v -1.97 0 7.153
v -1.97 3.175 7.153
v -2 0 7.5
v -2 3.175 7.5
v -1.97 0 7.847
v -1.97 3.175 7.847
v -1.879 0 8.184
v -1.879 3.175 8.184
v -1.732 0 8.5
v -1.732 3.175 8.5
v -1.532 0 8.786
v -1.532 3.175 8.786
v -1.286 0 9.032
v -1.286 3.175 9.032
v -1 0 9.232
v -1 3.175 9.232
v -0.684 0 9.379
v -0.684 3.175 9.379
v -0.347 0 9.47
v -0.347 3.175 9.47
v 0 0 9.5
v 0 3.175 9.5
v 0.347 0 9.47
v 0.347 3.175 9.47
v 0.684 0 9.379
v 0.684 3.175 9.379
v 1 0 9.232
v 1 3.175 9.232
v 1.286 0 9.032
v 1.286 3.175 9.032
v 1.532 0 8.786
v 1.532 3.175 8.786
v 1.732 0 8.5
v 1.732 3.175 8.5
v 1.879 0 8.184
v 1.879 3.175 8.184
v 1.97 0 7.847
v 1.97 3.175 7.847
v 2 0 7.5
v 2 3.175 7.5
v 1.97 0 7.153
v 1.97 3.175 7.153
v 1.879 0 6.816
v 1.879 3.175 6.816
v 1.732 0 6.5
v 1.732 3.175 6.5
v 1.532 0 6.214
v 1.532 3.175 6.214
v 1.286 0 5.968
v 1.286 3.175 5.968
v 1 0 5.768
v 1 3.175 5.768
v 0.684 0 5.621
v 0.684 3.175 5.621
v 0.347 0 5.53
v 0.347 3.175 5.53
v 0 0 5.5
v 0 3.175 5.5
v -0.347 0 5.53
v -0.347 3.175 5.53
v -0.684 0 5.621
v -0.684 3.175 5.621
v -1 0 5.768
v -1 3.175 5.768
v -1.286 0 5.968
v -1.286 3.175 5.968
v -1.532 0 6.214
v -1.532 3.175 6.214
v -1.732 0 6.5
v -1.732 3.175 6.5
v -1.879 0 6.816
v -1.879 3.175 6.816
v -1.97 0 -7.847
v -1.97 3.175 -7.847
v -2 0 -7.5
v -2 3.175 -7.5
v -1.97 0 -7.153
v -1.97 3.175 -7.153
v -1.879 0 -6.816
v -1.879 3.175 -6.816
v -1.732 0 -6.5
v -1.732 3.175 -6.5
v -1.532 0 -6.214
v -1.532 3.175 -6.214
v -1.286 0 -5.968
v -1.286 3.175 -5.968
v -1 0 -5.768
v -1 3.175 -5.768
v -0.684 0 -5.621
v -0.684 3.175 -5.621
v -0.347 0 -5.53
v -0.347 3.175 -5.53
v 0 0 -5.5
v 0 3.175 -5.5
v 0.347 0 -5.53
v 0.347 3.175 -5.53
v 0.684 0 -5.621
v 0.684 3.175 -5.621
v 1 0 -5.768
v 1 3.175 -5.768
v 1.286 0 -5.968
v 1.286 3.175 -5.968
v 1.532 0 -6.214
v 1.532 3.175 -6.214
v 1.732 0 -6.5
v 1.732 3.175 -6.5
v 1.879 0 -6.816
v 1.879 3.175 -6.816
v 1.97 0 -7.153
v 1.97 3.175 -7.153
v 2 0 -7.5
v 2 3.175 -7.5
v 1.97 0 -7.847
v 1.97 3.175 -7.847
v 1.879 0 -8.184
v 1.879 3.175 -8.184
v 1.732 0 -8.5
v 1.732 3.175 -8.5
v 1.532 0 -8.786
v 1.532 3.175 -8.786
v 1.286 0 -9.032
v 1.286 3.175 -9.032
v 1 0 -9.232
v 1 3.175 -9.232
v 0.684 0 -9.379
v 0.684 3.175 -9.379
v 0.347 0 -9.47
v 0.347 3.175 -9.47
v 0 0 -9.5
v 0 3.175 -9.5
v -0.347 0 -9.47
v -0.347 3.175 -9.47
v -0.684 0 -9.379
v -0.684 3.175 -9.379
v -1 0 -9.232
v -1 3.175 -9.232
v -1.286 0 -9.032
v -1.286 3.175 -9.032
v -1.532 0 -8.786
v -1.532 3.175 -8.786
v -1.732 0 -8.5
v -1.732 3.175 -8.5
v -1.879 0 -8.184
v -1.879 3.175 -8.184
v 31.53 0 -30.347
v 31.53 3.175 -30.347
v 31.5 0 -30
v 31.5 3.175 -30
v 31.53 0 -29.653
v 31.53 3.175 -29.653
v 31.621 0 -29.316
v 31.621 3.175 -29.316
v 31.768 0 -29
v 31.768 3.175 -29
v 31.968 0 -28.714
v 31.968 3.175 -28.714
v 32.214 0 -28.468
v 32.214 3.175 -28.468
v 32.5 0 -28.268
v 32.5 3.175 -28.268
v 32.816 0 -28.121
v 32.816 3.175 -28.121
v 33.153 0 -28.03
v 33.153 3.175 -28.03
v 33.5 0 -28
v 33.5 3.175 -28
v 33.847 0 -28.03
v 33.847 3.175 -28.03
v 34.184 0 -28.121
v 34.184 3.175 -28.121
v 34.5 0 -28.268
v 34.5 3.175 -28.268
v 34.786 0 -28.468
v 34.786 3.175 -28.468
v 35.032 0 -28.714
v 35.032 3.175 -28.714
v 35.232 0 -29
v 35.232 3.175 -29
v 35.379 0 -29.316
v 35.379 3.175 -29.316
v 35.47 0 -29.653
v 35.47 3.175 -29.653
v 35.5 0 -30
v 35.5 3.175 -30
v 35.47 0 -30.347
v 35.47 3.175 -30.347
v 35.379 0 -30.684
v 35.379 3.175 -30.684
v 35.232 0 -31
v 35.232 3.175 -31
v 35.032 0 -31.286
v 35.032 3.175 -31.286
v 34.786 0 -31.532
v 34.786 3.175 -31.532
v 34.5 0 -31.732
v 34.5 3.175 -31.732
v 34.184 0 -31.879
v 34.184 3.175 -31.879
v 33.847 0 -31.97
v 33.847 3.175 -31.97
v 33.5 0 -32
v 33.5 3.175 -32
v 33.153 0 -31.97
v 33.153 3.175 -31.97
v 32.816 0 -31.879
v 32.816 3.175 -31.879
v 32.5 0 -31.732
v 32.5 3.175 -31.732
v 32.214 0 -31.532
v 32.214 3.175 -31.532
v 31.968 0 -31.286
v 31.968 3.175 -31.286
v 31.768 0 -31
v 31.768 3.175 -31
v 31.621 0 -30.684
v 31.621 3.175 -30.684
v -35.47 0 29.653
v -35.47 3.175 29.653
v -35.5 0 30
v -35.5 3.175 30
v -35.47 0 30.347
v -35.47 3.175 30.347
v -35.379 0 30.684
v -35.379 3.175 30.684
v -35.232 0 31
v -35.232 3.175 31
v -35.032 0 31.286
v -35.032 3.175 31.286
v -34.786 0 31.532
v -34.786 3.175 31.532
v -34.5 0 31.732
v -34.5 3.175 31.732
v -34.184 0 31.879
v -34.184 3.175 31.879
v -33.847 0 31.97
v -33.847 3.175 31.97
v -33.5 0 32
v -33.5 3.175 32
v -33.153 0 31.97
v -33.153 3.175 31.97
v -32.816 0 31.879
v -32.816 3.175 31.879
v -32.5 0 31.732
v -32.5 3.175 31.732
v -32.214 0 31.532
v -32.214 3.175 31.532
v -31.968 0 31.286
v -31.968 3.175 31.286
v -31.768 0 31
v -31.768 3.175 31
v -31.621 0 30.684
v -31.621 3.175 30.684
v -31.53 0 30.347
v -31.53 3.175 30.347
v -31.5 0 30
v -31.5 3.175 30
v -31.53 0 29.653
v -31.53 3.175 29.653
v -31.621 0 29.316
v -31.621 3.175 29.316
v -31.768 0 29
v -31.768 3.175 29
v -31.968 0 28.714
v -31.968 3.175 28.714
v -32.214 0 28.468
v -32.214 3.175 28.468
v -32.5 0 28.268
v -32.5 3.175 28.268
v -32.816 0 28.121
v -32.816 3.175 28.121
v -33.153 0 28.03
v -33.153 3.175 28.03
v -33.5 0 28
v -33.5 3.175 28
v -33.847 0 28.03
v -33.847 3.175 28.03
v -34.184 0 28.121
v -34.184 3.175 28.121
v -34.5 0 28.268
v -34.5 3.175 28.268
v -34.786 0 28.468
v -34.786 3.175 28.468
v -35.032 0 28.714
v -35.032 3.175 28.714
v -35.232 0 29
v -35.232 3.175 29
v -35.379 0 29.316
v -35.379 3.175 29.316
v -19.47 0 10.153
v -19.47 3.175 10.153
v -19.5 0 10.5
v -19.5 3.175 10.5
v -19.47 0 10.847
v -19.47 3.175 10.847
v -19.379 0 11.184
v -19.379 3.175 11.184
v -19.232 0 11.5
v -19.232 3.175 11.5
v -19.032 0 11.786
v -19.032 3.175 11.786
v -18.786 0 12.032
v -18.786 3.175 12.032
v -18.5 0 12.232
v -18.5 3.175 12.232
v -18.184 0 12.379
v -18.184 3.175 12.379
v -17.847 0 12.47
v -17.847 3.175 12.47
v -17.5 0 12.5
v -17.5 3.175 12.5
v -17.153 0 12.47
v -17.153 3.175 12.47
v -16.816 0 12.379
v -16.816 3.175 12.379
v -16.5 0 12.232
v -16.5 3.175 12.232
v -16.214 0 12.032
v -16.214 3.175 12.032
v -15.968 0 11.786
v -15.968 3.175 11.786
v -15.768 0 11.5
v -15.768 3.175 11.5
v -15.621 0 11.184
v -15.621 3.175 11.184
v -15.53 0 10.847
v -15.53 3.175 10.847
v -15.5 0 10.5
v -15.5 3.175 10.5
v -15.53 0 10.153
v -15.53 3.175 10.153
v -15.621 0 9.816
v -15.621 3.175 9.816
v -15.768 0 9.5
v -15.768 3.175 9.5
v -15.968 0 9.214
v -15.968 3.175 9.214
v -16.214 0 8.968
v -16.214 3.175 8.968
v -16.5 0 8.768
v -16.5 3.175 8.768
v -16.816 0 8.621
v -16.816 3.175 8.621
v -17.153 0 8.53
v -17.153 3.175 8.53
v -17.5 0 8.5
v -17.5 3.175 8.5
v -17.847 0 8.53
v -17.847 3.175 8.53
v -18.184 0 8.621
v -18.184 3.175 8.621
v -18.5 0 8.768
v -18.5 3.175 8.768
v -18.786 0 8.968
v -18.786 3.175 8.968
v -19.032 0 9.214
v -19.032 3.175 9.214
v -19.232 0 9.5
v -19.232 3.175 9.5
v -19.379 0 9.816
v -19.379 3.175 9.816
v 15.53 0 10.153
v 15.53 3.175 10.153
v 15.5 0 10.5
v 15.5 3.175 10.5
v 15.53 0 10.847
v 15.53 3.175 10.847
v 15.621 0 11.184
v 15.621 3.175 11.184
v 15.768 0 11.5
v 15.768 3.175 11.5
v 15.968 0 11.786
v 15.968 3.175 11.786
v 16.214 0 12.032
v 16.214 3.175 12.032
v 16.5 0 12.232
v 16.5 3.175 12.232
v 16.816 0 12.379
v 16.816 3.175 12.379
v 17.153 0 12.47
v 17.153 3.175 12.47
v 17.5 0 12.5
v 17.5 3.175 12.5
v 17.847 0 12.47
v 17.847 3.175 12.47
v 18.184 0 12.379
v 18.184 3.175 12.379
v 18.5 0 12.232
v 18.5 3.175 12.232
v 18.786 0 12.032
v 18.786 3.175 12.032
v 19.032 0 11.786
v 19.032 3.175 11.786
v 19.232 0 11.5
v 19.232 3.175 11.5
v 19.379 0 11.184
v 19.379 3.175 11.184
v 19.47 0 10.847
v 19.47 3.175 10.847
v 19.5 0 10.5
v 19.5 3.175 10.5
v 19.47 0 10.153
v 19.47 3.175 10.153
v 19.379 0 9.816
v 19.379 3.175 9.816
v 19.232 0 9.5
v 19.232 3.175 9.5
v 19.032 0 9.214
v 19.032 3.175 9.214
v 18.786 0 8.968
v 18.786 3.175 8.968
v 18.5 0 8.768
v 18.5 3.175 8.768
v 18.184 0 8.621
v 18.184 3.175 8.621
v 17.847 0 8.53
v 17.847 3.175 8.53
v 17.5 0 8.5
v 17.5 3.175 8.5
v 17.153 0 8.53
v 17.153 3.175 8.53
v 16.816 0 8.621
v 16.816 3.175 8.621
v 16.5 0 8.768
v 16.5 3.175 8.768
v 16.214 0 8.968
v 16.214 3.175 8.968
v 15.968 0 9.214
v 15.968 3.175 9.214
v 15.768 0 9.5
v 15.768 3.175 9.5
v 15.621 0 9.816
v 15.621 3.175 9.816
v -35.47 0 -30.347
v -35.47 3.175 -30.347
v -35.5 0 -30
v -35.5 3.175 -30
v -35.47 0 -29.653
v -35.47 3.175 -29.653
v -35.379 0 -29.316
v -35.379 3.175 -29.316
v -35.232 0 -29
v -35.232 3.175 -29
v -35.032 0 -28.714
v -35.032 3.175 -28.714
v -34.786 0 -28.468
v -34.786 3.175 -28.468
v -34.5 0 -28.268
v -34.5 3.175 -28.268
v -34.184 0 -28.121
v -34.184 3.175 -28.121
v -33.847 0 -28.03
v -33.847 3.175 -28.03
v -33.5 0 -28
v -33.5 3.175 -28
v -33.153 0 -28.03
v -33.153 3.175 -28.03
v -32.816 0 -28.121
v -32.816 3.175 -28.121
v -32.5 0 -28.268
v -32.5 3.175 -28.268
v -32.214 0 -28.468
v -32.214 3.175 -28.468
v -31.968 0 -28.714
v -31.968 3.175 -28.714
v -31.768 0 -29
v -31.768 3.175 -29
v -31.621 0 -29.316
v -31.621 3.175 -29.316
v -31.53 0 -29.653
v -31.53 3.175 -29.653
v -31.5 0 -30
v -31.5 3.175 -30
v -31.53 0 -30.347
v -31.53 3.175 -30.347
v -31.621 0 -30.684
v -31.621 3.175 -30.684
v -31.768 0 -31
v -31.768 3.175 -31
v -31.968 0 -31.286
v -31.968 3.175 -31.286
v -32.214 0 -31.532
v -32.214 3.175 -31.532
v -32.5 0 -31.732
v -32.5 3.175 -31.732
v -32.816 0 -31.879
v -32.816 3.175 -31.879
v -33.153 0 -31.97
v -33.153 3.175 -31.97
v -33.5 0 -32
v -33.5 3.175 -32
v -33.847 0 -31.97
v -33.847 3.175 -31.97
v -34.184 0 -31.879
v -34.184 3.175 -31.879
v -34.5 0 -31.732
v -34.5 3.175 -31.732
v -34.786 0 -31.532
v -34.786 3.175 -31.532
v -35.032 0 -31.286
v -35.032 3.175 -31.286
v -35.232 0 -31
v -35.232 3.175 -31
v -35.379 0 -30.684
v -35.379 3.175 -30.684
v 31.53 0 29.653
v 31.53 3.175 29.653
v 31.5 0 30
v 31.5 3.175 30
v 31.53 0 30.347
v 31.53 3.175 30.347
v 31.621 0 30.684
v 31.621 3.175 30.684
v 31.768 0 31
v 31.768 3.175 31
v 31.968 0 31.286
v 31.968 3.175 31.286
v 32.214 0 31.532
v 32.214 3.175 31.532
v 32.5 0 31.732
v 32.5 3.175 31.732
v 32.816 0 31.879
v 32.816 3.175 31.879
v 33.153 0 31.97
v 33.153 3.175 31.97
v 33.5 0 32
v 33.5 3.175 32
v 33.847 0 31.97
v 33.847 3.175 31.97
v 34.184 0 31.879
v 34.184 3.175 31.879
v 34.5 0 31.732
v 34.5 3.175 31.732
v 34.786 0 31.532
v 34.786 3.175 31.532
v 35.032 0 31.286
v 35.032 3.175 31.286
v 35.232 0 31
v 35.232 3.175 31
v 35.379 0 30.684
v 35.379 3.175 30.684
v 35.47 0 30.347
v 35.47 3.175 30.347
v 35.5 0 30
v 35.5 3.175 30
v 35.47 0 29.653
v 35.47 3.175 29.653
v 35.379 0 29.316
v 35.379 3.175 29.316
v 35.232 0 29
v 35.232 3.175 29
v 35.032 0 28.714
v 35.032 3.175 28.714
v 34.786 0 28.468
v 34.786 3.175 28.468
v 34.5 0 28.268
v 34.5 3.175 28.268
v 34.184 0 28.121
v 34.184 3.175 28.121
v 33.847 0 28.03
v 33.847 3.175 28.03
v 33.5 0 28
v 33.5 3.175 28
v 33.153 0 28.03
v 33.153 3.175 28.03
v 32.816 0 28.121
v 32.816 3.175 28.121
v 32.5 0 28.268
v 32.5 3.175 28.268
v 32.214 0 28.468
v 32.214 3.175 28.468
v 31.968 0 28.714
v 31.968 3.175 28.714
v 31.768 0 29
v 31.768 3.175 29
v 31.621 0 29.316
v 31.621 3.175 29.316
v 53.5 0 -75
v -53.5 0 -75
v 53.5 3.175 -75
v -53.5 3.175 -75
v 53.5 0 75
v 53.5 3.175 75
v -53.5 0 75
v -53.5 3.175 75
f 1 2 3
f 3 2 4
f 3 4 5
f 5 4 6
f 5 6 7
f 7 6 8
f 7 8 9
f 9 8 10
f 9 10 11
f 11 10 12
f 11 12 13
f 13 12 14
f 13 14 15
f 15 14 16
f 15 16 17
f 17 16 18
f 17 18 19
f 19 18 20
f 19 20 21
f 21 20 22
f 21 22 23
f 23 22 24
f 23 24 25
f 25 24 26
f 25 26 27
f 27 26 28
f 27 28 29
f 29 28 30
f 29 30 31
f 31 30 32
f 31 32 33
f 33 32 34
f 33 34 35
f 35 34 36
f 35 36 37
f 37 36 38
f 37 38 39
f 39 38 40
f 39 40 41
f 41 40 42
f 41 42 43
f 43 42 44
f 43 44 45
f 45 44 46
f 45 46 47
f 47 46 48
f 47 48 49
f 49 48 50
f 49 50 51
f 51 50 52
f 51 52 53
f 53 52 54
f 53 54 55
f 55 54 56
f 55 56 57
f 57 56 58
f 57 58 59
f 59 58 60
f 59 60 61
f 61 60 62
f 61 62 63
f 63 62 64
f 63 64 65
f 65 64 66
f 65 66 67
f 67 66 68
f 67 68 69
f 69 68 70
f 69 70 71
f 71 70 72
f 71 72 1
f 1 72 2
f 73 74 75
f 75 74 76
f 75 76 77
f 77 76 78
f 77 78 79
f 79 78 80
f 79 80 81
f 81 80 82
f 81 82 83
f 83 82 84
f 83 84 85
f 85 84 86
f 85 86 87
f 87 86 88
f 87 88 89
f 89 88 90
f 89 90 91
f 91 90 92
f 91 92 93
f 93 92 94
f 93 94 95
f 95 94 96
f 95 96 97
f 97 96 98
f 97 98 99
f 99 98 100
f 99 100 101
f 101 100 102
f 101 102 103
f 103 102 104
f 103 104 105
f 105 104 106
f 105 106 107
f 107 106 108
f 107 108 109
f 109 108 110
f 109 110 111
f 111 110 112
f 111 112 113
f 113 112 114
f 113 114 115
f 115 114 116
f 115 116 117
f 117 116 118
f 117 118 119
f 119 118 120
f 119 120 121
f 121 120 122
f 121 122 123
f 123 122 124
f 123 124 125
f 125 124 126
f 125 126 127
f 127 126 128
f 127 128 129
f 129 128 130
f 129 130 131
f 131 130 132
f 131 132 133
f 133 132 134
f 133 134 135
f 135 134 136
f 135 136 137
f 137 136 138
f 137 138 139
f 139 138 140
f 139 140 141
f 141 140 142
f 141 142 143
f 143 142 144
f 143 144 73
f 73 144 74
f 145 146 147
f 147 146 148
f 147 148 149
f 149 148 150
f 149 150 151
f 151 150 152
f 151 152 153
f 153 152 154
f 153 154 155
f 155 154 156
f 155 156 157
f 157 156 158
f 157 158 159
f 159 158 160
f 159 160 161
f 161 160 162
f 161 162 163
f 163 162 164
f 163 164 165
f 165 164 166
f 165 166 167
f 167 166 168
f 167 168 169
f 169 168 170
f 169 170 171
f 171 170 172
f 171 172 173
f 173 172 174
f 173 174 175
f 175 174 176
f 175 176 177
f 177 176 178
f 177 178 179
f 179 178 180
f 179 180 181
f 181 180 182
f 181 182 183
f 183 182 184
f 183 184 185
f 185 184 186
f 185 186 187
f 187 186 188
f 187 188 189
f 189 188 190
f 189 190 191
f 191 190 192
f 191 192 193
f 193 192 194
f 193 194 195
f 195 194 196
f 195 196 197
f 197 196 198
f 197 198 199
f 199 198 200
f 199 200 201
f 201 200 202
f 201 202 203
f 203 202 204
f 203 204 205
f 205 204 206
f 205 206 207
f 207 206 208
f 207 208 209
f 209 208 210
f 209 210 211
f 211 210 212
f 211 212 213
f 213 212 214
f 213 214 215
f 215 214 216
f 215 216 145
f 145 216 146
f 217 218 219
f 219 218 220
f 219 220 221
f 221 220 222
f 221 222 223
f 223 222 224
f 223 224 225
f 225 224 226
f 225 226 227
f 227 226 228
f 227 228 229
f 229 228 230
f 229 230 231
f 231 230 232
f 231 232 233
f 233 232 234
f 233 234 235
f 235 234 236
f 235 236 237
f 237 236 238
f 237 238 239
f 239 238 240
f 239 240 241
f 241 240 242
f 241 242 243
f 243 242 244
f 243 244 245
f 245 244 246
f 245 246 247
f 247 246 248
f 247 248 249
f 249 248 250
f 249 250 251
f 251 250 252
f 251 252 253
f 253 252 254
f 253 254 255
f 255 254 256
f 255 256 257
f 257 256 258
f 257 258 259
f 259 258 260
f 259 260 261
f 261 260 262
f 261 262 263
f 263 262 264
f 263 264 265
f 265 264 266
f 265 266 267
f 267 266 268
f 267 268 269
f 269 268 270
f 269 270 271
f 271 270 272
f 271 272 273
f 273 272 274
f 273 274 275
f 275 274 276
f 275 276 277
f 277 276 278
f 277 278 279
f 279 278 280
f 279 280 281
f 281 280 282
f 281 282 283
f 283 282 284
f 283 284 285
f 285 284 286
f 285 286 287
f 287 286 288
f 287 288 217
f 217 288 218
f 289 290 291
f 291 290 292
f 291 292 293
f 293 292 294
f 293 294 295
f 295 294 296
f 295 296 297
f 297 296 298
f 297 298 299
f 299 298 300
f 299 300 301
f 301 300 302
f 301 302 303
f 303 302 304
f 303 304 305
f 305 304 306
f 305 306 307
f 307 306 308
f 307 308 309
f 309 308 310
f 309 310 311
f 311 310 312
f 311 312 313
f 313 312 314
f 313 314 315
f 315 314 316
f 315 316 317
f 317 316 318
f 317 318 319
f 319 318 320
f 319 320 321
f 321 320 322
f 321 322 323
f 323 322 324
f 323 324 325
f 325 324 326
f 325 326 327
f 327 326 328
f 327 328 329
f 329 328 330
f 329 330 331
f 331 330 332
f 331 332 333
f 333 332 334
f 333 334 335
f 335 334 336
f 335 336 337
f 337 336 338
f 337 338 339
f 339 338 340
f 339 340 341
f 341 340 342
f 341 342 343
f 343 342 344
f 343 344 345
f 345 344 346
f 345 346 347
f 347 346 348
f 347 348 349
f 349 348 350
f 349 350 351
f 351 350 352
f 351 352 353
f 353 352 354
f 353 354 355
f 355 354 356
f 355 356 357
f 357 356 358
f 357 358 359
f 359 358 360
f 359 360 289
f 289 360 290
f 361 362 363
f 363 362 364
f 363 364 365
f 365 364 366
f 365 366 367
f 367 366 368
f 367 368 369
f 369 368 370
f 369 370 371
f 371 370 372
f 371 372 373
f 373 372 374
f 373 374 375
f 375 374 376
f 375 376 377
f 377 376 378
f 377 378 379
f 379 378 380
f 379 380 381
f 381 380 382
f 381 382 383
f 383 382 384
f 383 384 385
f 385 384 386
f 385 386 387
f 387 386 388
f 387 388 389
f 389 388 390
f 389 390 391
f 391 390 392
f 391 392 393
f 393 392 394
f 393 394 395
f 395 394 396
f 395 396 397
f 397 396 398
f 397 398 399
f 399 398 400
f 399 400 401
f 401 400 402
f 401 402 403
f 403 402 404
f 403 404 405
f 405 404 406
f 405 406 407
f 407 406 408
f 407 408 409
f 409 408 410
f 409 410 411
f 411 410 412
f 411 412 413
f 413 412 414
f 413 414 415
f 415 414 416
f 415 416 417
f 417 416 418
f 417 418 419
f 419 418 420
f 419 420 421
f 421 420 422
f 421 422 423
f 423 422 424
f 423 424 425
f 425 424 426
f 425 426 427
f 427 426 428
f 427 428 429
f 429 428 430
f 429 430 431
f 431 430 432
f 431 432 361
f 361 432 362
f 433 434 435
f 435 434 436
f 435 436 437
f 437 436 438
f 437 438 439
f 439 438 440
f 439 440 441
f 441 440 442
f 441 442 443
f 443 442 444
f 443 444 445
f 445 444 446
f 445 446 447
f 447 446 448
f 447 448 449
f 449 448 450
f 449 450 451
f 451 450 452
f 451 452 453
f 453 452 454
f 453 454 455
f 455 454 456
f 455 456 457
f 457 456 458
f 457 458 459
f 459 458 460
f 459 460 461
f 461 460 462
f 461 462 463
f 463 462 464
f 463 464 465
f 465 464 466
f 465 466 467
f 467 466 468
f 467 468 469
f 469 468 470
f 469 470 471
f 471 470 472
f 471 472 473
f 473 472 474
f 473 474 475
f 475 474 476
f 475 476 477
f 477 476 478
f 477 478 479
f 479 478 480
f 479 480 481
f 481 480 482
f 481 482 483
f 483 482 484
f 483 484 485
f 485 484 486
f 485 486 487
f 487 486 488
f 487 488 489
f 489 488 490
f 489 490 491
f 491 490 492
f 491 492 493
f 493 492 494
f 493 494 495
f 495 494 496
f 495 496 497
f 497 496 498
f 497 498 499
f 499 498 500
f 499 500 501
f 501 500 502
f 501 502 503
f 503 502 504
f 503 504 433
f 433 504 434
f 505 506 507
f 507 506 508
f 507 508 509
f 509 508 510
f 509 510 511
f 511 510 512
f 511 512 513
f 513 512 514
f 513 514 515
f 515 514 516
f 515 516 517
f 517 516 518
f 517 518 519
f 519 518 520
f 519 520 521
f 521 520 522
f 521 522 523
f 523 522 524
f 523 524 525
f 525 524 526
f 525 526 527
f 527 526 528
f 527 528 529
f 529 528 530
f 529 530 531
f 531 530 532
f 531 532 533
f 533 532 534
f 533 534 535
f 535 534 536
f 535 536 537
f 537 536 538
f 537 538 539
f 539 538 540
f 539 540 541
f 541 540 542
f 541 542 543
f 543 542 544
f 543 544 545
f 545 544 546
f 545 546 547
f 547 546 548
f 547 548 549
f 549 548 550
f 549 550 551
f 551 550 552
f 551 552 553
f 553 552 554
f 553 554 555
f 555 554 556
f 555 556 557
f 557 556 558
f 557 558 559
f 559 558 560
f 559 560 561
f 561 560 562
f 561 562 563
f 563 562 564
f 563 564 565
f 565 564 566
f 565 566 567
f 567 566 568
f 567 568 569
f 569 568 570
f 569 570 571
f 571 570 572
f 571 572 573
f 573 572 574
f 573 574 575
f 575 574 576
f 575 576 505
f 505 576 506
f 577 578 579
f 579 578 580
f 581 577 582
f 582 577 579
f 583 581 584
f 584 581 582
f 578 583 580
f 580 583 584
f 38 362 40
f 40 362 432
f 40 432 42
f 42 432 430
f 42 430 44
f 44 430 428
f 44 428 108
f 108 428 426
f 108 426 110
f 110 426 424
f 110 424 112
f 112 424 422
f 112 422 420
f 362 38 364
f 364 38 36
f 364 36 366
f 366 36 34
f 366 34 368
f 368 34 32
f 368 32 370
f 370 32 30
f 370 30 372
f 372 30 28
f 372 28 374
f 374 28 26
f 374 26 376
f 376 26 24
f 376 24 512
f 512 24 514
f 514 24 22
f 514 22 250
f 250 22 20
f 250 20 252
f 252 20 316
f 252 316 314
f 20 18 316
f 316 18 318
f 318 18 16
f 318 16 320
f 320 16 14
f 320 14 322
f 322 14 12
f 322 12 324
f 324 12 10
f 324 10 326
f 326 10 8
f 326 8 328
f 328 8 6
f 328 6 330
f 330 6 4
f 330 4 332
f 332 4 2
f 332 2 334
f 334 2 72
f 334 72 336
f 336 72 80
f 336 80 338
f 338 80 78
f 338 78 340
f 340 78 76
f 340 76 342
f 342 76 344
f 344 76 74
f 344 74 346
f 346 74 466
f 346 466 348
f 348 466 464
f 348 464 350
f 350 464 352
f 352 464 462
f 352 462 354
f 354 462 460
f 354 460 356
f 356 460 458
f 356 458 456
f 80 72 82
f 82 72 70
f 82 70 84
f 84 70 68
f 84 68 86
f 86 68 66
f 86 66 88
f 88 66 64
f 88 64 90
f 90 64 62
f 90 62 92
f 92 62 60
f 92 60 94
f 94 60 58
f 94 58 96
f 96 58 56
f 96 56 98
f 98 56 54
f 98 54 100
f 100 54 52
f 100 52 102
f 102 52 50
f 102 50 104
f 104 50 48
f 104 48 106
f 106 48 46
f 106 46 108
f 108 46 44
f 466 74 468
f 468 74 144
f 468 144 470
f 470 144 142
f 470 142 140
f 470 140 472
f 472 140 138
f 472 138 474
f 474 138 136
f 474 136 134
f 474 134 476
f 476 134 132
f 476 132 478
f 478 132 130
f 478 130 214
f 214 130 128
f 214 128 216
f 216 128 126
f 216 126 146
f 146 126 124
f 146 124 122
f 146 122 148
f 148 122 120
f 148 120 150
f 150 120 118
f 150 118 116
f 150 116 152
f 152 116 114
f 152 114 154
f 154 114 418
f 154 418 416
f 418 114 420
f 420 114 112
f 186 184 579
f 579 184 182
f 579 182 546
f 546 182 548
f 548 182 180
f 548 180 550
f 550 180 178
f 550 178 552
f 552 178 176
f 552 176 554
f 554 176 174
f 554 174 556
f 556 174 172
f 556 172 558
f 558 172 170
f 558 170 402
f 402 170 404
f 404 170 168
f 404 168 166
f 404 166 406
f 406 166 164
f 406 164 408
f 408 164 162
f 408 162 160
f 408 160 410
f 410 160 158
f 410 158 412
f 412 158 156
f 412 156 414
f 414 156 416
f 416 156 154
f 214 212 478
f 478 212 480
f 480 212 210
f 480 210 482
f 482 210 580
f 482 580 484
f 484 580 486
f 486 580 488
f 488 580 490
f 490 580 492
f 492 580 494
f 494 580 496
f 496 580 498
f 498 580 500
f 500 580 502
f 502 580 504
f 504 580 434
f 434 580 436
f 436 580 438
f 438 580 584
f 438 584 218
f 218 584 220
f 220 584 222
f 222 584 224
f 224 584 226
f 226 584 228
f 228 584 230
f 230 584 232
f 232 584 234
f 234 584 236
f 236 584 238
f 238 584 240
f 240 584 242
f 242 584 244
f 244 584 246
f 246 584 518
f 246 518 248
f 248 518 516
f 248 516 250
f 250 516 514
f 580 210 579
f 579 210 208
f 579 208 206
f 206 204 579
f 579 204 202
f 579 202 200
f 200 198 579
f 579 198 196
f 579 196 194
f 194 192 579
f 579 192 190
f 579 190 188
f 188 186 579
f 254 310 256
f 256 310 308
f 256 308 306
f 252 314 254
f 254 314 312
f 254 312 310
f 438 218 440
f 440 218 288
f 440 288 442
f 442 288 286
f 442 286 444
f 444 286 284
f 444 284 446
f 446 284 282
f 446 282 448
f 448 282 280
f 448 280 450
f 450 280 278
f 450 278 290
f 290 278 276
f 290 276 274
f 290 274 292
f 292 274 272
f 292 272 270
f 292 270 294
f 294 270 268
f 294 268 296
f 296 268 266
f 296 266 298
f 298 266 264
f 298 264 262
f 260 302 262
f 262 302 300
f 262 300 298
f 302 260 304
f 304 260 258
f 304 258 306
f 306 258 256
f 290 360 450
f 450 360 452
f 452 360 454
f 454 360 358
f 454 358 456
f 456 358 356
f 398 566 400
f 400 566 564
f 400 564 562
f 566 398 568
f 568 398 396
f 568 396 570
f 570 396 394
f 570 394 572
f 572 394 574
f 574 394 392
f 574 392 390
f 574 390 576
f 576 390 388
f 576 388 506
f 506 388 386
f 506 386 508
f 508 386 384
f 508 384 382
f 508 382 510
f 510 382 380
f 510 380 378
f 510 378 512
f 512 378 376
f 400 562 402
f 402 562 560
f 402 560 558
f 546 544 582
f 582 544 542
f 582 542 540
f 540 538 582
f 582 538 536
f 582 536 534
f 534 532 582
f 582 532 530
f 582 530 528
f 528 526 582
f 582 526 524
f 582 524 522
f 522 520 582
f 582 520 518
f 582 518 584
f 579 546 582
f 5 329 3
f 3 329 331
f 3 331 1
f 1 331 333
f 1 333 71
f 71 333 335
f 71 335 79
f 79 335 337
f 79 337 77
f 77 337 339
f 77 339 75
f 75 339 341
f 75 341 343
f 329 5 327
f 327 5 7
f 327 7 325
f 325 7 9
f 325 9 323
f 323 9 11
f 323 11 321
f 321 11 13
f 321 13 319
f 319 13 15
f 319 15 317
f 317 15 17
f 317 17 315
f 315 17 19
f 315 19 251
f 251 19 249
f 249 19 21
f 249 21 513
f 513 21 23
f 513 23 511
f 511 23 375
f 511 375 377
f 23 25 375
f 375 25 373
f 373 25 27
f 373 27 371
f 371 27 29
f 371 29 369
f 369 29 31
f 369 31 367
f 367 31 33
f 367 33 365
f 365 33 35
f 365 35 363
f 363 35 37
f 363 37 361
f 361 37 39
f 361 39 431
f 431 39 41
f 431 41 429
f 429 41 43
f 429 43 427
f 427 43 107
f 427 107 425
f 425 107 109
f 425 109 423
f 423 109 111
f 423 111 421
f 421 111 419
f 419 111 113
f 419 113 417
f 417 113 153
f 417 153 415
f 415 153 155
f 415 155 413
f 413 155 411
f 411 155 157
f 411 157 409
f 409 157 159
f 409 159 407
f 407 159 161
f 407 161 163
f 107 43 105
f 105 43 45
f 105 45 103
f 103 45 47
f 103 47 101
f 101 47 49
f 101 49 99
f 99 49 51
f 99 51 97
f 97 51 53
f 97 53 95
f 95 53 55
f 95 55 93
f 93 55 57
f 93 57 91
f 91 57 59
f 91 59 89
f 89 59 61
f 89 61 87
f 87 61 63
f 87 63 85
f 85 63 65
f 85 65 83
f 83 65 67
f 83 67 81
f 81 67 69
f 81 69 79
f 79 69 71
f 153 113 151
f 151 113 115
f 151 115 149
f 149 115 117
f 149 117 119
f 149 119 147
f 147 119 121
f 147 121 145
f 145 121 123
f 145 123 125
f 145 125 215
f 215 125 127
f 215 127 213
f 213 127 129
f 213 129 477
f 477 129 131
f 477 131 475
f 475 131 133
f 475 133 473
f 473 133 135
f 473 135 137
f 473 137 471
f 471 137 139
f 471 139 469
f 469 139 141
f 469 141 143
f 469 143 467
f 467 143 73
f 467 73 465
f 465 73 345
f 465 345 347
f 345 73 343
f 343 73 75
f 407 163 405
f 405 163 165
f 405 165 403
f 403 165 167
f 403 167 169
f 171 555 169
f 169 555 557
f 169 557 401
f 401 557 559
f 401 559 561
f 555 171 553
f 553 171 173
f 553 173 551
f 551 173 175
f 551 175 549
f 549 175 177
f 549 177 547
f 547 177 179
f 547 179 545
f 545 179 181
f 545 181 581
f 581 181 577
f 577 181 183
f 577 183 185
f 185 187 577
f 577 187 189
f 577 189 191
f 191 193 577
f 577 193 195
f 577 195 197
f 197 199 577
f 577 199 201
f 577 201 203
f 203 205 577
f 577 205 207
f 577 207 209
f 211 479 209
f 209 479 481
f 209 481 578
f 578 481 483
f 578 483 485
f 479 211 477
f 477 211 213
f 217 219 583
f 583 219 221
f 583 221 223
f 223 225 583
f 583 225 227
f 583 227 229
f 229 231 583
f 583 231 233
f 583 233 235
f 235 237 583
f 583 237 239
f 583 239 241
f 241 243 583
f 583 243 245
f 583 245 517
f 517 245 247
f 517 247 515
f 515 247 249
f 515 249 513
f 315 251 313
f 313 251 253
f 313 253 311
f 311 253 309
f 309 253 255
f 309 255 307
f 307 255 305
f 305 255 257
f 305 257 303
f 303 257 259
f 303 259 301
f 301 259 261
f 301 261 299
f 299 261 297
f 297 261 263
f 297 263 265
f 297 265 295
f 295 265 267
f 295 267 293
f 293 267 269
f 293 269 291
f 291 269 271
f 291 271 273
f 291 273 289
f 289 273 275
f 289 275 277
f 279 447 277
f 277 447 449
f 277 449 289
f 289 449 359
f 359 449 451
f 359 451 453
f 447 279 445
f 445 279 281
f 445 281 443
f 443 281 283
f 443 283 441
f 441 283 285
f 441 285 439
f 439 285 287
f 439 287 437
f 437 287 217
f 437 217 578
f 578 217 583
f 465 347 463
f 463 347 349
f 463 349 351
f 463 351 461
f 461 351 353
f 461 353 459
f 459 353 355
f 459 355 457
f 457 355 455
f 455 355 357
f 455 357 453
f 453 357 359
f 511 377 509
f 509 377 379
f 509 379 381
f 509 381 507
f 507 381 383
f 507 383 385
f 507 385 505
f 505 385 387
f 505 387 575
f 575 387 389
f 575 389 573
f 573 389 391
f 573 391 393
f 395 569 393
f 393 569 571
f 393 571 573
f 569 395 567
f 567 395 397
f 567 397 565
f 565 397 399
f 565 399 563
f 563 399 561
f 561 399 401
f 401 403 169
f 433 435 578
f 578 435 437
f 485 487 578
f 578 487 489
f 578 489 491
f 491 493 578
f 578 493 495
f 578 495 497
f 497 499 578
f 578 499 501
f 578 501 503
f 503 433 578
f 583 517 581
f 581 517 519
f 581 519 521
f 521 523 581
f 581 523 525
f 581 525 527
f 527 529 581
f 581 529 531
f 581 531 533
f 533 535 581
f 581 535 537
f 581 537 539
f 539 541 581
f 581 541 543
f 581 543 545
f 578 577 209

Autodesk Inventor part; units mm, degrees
ref_plane "YZ Plane" through (0, 0, 0) normal (1, 0, 0) x (0, 1, 0)
ref_plane "XZ Plane" through (0, 0, 0) normal (0, 1, 0) x (-1, 0, 0)
ref_plane "XY Plane" through (0, 0, 0) normal (0, 0, 1) x (1, 0, 0)
sketch "Sketch1" plane through (0, 0, 0) normal (0, 1, 0) x (-1, 0, 0)
  line L0 (53.5, 75) -> (-53.5, 75)
  line L1 (-53.5, 75) -> (-53.5, -75)
  line L2 (-53.5, -75) -> (53.5, -75)
  line L3 (53.5, -75) -> (53.5, 75)
  line L4 (74.9, 0) -> (-74.9, 0) projected
  line L5 (0, -105) -> (0, 105) projected
  point P0 (0, 0)
  point P1 (0, 75)
  point P2 (53.5, 0)
  dimension "d0" = 150
  dimension "d1" = 107
extrude "Extrusion1" add sketch "Sketch1" along normal blind 3.175
sketch "Sketch2" plane through (0, 3.175, 0) normal (0, 1, 0) x (1, 0, 0)
  line L0 (-53.5, -75) -> (53.5, -75) projected
  line L1 (-53.5, 75) -> (-53.5, -75) projected
  line L2 (53.5, 75) -> (-53.5, 75) projected
  line L3 (-33.5, -30) -> (33.5, -30)
  line L4 (33.5, -30) -> (33.5, 30) construction
  line L5 (33.5, 30) -> (-33.5, 30) construction
  line L6 (-33.5, 30) -> (-33.5, -30) construction
  line L7 (-74.9, 0) -> (74.9, 0) projected
  line L8 (0, 105) -> (0, -105) projected
  line L9 (-17.5, -10.5) -> (17.5, -10.5)
  point P0 (0, -30)
  point P1 (-33.5, 0)
  point P2 (0, -10.5)
  point P3 (0, -7.5)
  point P4 (0, 7.5)
  dimension "d11" = 45
  dimension "d12" = 20
  dimension "d13" = 64.5
  dimension "d14" = 35
  dimension "d15" = 7.5
  dimension "d16" = 7.5
hole "Hole1" at (-17.5, 3.175, 10.5) at (17.5, 3.175, 10.5) at (-33.5, 3.175, 30) at (-33.5, 3.175, -30) at (33.5, 3.175, -30) at (33.5, 3.175, 30) direction (0, -1, 0) diameter 4 end through all
hole "Hole2" at (0, 3.175, 7.5) at (0, 3.175, -7.5) direction (0, -1, 0) diameter 4 end through all
equation "\"d16\" = d15"
properties part number "base superior"
